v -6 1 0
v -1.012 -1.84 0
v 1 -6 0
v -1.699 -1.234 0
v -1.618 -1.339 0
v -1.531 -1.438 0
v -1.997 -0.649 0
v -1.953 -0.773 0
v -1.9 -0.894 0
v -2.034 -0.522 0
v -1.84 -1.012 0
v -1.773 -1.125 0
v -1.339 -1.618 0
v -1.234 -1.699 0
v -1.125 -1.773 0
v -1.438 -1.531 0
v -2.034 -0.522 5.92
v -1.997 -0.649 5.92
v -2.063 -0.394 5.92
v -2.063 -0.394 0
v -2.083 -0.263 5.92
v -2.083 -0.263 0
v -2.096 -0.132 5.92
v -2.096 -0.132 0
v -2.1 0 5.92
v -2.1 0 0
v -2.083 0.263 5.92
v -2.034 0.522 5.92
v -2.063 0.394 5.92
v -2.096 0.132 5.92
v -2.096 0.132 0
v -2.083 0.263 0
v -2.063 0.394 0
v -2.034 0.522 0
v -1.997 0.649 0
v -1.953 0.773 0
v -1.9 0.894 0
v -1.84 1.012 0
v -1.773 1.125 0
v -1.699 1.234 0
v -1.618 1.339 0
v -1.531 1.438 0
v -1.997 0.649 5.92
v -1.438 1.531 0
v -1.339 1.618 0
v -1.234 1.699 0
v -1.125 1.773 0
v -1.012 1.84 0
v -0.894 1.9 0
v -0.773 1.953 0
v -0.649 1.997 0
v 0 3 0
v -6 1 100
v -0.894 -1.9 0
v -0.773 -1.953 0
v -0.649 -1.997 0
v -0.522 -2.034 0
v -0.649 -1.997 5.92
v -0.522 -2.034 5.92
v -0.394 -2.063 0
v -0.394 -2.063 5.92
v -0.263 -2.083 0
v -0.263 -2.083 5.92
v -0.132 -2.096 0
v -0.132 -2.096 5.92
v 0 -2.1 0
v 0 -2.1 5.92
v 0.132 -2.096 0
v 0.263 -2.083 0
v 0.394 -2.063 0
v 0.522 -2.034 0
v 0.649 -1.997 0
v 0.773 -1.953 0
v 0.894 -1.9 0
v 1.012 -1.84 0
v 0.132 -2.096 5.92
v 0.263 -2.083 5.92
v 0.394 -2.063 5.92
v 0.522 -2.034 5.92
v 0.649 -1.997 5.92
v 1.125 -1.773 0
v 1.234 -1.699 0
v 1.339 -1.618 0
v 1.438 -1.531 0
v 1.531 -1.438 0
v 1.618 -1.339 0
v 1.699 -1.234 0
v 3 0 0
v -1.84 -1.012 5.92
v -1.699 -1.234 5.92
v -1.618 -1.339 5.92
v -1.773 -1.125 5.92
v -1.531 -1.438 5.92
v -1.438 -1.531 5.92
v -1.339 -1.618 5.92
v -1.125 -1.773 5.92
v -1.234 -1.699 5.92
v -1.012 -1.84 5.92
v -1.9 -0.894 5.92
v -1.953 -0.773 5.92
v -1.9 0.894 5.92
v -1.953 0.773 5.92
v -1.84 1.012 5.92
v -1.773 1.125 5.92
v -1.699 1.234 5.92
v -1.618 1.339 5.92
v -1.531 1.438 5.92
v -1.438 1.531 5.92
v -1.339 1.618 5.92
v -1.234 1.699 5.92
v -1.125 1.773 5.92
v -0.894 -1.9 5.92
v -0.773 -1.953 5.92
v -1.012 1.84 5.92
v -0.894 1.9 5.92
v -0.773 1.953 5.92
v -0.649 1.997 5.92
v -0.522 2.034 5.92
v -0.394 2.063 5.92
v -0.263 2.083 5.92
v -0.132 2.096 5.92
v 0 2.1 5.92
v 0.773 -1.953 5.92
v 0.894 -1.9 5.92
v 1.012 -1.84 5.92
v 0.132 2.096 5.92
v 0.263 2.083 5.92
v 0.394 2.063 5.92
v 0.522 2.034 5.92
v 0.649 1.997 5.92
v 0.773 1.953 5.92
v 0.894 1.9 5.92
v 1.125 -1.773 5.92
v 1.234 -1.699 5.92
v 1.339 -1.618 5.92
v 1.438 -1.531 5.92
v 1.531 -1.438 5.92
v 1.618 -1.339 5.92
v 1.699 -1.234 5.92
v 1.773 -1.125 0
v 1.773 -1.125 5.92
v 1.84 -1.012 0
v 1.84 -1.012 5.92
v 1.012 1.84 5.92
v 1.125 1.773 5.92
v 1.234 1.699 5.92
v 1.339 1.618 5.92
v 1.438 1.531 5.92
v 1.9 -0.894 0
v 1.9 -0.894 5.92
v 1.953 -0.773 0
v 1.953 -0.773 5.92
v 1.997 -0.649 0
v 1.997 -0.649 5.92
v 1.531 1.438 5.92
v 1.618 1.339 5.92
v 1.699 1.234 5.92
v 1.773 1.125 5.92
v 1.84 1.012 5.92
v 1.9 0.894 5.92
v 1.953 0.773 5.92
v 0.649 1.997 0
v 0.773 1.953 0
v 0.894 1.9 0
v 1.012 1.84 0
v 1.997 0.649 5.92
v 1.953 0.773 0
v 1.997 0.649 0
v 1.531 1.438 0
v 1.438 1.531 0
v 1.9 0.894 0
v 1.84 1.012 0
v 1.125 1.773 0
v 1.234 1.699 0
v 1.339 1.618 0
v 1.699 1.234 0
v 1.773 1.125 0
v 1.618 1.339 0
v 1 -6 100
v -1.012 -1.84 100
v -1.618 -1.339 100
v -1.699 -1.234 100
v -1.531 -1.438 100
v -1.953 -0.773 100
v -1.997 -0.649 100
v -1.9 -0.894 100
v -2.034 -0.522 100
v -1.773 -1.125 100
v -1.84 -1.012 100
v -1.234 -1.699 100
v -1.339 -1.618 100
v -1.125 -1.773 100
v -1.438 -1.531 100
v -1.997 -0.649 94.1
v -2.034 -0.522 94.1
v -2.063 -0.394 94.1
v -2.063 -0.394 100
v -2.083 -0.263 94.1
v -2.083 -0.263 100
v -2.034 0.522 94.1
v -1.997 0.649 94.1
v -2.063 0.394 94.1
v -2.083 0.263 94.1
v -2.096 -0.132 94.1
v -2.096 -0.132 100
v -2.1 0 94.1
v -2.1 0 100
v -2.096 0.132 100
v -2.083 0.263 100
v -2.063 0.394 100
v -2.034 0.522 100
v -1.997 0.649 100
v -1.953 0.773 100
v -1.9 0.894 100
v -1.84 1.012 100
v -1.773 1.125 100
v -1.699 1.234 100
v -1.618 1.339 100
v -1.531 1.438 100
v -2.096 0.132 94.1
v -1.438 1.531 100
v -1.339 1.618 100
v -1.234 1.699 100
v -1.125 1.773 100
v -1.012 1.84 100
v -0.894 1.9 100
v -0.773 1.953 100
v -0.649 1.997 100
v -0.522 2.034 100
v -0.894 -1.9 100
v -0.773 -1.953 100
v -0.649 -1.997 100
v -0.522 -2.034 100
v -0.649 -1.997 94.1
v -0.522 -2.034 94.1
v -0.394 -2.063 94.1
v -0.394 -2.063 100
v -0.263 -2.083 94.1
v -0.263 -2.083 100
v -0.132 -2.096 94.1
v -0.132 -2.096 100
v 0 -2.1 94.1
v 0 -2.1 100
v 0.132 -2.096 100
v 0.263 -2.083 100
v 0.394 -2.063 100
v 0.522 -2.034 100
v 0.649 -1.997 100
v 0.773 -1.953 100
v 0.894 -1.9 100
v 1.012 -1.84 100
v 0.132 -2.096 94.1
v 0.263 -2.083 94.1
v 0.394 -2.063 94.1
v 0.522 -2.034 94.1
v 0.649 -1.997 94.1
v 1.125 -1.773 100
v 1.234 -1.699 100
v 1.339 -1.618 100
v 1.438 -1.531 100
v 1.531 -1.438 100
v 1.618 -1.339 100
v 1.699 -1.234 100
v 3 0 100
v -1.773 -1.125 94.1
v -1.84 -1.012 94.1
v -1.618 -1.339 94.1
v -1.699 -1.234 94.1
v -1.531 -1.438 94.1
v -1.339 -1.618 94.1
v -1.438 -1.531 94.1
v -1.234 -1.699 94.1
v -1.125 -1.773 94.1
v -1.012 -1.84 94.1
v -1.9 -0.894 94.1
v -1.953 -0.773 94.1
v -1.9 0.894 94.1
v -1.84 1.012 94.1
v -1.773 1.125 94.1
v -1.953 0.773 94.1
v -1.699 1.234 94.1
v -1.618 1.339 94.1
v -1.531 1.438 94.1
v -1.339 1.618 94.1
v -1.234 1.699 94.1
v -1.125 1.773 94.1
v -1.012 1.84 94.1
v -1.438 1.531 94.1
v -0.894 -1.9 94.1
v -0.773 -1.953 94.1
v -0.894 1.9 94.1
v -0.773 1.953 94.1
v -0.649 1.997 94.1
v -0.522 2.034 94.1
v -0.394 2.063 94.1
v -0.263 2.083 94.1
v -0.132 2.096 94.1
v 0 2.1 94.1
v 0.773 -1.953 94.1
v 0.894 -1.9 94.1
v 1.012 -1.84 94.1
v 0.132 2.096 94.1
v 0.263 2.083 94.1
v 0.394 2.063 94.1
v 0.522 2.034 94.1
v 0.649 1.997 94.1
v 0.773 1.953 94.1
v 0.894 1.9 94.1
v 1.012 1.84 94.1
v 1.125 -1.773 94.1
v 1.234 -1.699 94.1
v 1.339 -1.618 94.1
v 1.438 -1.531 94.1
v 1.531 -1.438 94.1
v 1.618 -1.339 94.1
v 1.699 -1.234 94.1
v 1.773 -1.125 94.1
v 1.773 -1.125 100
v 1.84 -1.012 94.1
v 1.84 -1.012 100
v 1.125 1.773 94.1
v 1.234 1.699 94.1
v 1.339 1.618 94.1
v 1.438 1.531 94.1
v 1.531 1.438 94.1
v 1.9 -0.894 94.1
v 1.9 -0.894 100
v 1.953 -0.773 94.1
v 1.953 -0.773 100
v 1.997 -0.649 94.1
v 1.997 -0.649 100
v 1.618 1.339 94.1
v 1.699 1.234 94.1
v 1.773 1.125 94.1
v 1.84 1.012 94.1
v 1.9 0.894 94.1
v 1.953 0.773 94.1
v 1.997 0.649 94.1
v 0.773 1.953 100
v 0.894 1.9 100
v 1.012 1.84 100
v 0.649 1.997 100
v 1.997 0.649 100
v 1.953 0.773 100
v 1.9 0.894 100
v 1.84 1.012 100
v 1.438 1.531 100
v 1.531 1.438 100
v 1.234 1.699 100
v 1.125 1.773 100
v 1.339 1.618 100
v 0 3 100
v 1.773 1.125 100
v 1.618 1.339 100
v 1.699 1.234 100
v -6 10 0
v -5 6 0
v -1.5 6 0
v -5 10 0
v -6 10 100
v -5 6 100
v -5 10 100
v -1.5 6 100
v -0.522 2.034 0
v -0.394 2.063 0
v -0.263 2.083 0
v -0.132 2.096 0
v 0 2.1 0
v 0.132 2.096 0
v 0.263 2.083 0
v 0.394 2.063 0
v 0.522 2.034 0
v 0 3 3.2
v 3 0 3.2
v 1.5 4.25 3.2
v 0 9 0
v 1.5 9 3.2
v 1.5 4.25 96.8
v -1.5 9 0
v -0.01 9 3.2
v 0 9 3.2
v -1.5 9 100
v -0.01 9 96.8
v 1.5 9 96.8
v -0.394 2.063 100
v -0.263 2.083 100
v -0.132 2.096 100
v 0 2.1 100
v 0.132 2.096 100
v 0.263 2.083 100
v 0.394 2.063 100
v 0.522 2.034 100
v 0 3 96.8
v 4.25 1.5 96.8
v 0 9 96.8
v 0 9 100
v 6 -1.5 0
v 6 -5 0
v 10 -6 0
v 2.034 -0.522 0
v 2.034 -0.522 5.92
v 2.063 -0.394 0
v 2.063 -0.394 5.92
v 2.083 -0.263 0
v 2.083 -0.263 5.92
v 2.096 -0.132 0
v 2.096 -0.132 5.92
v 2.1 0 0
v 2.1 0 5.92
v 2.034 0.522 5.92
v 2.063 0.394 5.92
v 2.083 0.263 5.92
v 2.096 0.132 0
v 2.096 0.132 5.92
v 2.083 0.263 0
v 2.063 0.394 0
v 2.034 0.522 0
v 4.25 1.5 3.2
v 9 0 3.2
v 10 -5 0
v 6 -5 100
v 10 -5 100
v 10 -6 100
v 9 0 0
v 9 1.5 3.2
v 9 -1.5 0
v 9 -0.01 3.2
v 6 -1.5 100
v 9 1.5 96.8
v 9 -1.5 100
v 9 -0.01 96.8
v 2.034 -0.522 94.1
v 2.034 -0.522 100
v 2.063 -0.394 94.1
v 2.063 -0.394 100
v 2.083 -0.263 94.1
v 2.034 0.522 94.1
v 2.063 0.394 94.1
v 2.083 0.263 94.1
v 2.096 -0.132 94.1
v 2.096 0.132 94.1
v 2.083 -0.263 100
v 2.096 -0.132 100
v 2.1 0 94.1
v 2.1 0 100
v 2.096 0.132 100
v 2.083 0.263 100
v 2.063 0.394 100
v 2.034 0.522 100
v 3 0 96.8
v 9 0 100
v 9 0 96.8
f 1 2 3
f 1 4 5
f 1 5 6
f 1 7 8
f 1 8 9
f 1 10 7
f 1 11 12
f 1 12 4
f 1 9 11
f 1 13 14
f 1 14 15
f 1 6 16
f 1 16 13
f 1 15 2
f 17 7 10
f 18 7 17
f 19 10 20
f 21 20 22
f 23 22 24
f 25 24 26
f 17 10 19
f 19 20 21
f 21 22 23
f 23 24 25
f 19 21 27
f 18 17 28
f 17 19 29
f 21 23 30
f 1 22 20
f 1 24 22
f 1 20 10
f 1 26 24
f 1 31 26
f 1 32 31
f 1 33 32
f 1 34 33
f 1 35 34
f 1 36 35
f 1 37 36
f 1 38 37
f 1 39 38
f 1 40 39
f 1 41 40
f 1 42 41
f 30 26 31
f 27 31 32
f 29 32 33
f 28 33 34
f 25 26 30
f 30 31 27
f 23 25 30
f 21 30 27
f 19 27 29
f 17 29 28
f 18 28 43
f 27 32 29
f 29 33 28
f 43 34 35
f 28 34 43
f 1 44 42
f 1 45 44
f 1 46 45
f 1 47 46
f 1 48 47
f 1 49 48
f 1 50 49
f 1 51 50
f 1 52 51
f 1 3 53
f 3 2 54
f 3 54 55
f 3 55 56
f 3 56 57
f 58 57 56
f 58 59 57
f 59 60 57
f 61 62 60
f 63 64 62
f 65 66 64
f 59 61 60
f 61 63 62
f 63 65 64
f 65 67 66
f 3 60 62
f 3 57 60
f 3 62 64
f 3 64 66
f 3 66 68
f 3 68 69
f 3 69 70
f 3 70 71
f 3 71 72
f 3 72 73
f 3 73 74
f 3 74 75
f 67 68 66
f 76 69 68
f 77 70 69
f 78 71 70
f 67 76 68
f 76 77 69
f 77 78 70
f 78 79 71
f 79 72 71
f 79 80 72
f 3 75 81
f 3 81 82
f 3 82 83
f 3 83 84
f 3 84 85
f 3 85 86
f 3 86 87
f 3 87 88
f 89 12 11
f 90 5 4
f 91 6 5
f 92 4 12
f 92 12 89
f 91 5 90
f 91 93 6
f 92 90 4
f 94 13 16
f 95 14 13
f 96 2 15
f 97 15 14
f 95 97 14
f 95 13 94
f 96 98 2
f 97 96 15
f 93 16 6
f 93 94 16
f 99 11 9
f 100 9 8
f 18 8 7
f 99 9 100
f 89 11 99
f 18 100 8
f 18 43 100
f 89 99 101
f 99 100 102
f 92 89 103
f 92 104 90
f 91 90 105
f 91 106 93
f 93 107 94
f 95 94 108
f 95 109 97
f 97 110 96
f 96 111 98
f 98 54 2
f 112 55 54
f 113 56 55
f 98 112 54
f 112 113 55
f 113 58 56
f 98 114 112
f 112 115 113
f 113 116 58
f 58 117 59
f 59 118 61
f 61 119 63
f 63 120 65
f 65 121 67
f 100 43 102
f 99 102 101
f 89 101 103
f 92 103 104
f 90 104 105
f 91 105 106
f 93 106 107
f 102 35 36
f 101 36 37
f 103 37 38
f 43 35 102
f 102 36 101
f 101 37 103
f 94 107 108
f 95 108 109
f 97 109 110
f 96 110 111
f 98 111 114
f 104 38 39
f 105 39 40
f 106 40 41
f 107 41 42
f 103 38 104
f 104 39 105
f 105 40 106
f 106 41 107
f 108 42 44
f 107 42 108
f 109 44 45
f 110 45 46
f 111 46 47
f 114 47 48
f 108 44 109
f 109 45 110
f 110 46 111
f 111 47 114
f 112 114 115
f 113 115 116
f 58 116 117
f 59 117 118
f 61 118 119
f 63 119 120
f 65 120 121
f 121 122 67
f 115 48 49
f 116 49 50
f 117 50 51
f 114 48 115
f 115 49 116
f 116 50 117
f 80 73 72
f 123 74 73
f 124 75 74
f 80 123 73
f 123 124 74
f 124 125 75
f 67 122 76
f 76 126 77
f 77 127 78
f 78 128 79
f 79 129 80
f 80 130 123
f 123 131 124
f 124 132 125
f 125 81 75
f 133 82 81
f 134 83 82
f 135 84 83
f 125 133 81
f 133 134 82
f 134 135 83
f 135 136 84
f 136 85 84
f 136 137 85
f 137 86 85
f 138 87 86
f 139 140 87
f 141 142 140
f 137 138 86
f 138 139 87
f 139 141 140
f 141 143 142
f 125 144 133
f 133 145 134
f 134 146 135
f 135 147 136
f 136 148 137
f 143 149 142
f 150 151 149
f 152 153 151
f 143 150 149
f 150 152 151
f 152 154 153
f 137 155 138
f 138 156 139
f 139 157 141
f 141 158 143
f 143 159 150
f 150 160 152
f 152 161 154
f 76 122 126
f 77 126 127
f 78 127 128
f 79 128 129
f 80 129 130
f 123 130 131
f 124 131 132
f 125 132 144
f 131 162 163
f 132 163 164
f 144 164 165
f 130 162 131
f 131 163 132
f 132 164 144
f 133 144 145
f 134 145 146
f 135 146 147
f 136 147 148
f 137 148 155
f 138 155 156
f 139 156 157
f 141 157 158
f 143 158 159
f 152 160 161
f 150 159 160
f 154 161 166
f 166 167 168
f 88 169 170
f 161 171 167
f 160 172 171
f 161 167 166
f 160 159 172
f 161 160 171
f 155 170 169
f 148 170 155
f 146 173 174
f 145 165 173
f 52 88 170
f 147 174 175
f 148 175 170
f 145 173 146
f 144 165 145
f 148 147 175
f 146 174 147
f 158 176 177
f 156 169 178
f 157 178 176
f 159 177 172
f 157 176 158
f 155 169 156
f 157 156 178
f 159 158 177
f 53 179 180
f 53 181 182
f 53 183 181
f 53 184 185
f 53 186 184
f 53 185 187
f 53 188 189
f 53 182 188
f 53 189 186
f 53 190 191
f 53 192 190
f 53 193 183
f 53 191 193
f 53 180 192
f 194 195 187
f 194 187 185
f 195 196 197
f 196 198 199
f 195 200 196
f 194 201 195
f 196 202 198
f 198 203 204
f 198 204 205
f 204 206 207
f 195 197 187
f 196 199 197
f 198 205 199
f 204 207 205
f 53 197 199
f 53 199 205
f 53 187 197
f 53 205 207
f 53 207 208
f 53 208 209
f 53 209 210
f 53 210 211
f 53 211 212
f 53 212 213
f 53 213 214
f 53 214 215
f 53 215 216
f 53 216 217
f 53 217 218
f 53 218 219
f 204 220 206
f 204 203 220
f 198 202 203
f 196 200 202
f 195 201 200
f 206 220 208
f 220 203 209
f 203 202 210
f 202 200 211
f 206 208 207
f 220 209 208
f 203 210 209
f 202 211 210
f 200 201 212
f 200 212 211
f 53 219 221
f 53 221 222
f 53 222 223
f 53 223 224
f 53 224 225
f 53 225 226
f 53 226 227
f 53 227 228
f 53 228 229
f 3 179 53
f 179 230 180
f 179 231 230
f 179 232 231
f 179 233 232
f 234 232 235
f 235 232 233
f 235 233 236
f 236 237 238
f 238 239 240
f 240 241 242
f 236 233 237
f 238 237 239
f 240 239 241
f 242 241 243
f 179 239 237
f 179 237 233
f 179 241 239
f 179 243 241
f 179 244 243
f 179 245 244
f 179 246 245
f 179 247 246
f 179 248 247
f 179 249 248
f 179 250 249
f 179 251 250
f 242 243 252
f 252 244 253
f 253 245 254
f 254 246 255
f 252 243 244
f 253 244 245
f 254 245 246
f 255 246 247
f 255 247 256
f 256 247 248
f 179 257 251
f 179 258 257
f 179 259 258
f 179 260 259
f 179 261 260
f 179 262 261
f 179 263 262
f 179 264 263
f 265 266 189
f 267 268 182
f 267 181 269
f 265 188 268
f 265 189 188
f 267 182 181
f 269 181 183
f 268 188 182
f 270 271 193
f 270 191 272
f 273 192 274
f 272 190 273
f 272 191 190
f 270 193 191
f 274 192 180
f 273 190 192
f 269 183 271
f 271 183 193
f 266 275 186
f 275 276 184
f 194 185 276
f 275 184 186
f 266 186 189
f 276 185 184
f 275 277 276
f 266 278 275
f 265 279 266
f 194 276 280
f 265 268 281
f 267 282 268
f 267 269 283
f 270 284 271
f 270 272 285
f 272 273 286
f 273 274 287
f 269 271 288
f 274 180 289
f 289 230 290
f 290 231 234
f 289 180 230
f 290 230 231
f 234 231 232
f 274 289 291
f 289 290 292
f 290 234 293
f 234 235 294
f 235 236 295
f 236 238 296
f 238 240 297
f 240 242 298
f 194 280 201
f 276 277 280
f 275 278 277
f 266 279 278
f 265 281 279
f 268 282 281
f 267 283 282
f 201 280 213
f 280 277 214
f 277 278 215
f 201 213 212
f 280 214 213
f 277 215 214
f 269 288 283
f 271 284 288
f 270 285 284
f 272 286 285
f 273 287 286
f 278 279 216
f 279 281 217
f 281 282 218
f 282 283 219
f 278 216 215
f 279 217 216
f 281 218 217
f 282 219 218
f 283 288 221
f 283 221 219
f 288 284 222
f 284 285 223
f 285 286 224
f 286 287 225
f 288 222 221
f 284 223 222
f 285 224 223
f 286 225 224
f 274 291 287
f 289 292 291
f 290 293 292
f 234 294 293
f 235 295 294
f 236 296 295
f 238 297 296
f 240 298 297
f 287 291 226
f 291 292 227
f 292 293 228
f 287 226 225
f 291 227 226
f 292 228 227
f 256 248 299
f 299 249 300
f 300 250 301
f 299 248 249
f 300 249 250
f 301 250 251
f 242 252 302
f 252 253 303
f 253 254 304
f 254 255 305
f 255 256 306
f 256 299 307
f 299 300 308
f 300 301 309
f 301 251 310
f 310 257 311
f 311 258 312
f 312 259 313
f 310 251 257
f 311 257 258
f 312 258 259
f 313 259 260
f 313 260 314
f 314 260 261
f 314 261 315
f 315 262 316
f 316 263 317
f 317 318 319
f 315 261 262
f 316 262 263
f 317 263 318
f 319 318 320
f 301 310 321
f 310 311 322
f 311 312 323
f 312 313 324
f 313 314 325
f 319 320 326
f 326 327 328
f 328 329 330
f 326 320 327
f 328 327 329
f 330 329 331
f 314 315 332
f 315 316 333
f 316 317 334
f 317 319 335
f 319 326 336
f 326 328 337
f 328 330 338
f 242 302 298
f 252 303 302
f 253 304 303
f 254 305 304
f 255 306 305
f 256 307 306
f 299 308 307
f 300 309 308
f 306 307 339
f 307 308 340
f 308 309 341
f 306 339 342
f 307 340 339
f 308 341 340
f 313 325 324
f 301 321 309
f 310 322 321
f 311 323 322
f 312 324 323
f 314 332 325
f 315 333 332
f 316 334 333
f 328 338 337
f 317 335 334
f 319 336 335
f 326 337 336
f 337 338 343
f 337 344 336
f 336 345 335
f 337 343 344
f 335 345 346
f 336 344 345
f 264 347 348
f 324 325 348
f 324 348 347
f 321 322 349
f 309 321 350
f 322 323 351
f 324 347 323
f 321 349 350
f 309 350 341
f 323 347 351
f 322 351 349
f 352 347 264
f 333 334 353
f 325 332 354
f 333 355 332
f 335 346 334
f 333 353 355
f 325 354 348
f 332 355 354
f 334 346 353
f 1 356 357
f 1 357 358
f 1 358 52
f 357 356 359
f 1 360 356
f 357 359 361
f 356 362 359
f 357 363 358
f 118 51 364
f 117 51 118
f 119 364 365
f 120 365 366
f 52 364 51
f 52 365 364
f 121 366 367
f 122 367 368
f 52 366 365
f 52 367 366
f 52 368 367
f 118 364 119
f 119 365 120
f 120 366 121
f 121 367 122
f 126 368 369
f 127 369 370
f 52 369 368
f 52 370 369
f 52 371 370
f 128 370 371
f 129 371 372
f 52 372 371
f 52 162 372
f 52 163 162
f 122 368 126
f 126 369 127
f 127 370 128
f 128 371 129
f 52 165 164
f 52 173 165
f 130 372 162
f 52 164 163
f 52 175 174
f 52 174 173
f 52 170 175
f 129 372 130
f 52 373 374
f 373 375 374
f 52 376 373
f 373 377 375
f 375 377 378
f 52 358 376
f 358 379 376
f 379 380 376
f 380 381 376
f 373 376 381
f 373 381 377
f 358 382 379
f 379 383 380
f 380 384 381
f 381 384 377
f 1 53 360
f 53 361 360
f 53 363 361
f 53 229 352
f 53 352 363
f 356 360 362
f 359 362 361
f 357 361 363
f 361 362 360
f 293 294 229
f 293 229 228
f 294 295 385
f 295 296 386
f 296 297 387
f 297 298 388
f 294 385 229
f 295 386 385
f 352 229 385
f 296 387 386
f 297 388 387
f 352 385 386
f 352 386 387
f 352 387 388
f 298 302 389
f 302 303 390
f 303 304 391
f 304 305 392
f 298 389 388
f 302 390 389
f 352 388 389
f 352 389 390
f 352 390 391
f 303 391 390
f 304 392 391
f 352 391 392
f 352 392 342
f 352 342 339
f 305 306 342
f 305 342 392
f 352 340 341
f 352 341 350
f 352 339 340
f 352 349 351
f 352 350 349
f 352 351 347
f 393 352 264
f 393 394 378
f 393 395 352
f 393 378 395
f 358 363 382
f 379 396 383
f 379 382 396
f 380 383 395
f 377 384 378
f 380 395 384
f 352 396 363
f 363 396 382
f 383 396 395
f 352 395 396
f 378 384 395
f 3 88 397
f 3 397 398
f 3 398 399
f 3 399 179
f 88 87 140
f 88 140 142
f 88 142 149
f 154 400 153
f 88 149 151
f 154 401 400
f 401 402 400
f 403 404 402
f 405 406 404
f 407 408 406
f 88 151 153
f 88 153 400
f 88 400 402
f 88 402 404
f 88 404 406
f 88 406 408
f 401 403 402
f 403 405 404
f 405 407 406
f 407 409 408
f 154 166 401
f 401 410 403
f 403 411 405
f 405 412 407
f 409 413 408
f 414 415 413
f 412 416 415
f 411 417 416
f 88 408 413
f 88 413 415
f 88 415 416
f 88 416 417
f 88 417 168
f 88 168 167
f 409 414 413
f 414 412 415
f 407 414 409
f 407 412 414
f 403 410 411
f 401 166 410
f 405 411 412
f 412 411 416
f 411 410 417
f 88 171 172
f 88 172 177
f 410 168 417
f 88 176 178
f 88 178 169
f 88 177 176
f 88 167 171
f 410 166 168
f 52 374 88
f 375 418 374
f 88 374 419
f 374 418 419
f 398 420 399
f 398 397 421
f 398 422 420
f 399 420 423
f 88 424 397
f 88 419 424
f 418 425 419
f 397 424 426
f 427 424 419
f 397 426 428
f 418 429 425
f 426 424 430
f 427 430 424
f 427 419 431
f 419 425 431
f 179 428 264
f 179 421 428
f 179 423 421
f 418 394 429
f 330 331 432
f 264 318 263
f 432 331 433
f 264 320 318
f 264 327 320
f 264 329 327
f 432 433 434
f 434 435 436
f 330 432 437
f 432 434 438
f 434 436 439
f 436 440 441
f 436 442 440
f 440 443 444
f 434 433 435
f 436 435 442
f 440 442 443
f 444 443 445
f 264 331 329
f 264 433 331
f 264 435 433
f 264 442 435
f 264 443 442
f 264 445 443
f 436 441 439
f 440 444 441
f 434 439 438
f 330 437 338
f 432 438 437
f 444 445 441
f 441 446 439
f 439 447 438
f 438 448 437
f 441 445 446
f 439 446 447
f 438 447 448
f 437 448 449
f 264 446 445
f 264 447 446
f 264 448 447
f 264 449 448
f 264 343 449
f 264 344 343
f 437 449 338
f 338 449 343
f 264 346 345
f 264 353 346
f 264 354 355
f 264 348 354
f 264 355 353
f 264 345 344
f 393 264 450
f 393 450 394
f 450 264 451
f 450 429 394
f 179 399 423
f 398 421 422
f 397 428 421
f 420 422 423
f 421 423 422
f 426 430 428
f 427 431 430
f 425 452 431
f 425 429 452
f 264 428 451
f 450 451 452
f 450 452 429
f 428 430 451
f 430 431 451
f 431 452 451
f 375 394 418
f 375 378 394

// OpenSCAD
// file: Kante.scad
$fn = 100;
tiny = 0.01;


/*

module stl_model() {
  import("Kante_5cm.stl");
}

color("blue") translate([30,0,0]) stl_model();
*/


/*************************************************
 * hoehe in mm
 ************************************************/

module Kante(hoehe) {
  x1 = 10;   // #1. unten rechts
  y1 = -6;   // #1.
  y2 = -5;   // #2
  x2 = +6;   // #3
  y3 = -1.5; // #4
  x3 = +9;   // #5
  y4 = +0;   // #6
  x4 = +3;   // #7
  y5 = +1;   // #8
  //--
  y6 = +1.5;
  x5 = 4.25;
  y7 = 3;
  
  dh = 3   + 0.2; // Toleranz
  h1 = hoehe - 2*dh;  

  h2 = 5.7 + 0.2; // Toleranz Innenloch
  d2 = 4.0 + 0.2; // Toleranz Innenloch

  color("red")
  difference() {
     union() {
        //color("red")
        linear_extrude(height=hoehe)
        polygon(points=[
          [x1,y1], // 10,-6
          [x1,y2], // 10,-5
          [x2,y2], //  6,-5
          [x2,y3], //  6,-1.5 
          [x3,y3], //  9,-1.5
          [x3,y4], //  9,0
          [x4,y4], //  3,0
          // copies from here.
          [y4,x4], //  0,3
          [y4,x3], //  0,9
          [y3,x3], // -1.5,9
          [y3,x2], // -1.5,6
          [y2,x2], //  -5,6
          [y2,x1], //  -5,10
          [y1,x1], //  -6,10
          [y1,y5], //  -6,1
          [y5,y1], //  -6,1
          [x1,y1]  // 10,-6
          ]); // polygon
        translate([0,0,dh])
        linear_extrude(height=h1)
        polygon(points=[
          [x3,y4 - tiny], // 9,-0
          [x3,y6], // 9,1.5
          [x5,y6], // 4,1.5
          [y6,x5], // 1.5,4
          [y6,x3], // 1.5,9
          [y4 - tiny,x3], // -0,9
          [y4 - tiny,y7], // -0,3
          [y7,y4 - tiny], // 3,-0
          [x3,y4 - tiny], // 9,-0
          ]); // polygon
        } // union

     translate([0,0,-tiny])    cylinder(h=h2+3*tiny, d=d2); // Loch unten
     translate([0,0,hoehe-h2]) cylinder(h=h2+2*tiny, d=d2); // Loch oben
  } // difference
}
// main file
use <Kante.scad>
$fn = 100;

Kante(100); // hoehe in mm
